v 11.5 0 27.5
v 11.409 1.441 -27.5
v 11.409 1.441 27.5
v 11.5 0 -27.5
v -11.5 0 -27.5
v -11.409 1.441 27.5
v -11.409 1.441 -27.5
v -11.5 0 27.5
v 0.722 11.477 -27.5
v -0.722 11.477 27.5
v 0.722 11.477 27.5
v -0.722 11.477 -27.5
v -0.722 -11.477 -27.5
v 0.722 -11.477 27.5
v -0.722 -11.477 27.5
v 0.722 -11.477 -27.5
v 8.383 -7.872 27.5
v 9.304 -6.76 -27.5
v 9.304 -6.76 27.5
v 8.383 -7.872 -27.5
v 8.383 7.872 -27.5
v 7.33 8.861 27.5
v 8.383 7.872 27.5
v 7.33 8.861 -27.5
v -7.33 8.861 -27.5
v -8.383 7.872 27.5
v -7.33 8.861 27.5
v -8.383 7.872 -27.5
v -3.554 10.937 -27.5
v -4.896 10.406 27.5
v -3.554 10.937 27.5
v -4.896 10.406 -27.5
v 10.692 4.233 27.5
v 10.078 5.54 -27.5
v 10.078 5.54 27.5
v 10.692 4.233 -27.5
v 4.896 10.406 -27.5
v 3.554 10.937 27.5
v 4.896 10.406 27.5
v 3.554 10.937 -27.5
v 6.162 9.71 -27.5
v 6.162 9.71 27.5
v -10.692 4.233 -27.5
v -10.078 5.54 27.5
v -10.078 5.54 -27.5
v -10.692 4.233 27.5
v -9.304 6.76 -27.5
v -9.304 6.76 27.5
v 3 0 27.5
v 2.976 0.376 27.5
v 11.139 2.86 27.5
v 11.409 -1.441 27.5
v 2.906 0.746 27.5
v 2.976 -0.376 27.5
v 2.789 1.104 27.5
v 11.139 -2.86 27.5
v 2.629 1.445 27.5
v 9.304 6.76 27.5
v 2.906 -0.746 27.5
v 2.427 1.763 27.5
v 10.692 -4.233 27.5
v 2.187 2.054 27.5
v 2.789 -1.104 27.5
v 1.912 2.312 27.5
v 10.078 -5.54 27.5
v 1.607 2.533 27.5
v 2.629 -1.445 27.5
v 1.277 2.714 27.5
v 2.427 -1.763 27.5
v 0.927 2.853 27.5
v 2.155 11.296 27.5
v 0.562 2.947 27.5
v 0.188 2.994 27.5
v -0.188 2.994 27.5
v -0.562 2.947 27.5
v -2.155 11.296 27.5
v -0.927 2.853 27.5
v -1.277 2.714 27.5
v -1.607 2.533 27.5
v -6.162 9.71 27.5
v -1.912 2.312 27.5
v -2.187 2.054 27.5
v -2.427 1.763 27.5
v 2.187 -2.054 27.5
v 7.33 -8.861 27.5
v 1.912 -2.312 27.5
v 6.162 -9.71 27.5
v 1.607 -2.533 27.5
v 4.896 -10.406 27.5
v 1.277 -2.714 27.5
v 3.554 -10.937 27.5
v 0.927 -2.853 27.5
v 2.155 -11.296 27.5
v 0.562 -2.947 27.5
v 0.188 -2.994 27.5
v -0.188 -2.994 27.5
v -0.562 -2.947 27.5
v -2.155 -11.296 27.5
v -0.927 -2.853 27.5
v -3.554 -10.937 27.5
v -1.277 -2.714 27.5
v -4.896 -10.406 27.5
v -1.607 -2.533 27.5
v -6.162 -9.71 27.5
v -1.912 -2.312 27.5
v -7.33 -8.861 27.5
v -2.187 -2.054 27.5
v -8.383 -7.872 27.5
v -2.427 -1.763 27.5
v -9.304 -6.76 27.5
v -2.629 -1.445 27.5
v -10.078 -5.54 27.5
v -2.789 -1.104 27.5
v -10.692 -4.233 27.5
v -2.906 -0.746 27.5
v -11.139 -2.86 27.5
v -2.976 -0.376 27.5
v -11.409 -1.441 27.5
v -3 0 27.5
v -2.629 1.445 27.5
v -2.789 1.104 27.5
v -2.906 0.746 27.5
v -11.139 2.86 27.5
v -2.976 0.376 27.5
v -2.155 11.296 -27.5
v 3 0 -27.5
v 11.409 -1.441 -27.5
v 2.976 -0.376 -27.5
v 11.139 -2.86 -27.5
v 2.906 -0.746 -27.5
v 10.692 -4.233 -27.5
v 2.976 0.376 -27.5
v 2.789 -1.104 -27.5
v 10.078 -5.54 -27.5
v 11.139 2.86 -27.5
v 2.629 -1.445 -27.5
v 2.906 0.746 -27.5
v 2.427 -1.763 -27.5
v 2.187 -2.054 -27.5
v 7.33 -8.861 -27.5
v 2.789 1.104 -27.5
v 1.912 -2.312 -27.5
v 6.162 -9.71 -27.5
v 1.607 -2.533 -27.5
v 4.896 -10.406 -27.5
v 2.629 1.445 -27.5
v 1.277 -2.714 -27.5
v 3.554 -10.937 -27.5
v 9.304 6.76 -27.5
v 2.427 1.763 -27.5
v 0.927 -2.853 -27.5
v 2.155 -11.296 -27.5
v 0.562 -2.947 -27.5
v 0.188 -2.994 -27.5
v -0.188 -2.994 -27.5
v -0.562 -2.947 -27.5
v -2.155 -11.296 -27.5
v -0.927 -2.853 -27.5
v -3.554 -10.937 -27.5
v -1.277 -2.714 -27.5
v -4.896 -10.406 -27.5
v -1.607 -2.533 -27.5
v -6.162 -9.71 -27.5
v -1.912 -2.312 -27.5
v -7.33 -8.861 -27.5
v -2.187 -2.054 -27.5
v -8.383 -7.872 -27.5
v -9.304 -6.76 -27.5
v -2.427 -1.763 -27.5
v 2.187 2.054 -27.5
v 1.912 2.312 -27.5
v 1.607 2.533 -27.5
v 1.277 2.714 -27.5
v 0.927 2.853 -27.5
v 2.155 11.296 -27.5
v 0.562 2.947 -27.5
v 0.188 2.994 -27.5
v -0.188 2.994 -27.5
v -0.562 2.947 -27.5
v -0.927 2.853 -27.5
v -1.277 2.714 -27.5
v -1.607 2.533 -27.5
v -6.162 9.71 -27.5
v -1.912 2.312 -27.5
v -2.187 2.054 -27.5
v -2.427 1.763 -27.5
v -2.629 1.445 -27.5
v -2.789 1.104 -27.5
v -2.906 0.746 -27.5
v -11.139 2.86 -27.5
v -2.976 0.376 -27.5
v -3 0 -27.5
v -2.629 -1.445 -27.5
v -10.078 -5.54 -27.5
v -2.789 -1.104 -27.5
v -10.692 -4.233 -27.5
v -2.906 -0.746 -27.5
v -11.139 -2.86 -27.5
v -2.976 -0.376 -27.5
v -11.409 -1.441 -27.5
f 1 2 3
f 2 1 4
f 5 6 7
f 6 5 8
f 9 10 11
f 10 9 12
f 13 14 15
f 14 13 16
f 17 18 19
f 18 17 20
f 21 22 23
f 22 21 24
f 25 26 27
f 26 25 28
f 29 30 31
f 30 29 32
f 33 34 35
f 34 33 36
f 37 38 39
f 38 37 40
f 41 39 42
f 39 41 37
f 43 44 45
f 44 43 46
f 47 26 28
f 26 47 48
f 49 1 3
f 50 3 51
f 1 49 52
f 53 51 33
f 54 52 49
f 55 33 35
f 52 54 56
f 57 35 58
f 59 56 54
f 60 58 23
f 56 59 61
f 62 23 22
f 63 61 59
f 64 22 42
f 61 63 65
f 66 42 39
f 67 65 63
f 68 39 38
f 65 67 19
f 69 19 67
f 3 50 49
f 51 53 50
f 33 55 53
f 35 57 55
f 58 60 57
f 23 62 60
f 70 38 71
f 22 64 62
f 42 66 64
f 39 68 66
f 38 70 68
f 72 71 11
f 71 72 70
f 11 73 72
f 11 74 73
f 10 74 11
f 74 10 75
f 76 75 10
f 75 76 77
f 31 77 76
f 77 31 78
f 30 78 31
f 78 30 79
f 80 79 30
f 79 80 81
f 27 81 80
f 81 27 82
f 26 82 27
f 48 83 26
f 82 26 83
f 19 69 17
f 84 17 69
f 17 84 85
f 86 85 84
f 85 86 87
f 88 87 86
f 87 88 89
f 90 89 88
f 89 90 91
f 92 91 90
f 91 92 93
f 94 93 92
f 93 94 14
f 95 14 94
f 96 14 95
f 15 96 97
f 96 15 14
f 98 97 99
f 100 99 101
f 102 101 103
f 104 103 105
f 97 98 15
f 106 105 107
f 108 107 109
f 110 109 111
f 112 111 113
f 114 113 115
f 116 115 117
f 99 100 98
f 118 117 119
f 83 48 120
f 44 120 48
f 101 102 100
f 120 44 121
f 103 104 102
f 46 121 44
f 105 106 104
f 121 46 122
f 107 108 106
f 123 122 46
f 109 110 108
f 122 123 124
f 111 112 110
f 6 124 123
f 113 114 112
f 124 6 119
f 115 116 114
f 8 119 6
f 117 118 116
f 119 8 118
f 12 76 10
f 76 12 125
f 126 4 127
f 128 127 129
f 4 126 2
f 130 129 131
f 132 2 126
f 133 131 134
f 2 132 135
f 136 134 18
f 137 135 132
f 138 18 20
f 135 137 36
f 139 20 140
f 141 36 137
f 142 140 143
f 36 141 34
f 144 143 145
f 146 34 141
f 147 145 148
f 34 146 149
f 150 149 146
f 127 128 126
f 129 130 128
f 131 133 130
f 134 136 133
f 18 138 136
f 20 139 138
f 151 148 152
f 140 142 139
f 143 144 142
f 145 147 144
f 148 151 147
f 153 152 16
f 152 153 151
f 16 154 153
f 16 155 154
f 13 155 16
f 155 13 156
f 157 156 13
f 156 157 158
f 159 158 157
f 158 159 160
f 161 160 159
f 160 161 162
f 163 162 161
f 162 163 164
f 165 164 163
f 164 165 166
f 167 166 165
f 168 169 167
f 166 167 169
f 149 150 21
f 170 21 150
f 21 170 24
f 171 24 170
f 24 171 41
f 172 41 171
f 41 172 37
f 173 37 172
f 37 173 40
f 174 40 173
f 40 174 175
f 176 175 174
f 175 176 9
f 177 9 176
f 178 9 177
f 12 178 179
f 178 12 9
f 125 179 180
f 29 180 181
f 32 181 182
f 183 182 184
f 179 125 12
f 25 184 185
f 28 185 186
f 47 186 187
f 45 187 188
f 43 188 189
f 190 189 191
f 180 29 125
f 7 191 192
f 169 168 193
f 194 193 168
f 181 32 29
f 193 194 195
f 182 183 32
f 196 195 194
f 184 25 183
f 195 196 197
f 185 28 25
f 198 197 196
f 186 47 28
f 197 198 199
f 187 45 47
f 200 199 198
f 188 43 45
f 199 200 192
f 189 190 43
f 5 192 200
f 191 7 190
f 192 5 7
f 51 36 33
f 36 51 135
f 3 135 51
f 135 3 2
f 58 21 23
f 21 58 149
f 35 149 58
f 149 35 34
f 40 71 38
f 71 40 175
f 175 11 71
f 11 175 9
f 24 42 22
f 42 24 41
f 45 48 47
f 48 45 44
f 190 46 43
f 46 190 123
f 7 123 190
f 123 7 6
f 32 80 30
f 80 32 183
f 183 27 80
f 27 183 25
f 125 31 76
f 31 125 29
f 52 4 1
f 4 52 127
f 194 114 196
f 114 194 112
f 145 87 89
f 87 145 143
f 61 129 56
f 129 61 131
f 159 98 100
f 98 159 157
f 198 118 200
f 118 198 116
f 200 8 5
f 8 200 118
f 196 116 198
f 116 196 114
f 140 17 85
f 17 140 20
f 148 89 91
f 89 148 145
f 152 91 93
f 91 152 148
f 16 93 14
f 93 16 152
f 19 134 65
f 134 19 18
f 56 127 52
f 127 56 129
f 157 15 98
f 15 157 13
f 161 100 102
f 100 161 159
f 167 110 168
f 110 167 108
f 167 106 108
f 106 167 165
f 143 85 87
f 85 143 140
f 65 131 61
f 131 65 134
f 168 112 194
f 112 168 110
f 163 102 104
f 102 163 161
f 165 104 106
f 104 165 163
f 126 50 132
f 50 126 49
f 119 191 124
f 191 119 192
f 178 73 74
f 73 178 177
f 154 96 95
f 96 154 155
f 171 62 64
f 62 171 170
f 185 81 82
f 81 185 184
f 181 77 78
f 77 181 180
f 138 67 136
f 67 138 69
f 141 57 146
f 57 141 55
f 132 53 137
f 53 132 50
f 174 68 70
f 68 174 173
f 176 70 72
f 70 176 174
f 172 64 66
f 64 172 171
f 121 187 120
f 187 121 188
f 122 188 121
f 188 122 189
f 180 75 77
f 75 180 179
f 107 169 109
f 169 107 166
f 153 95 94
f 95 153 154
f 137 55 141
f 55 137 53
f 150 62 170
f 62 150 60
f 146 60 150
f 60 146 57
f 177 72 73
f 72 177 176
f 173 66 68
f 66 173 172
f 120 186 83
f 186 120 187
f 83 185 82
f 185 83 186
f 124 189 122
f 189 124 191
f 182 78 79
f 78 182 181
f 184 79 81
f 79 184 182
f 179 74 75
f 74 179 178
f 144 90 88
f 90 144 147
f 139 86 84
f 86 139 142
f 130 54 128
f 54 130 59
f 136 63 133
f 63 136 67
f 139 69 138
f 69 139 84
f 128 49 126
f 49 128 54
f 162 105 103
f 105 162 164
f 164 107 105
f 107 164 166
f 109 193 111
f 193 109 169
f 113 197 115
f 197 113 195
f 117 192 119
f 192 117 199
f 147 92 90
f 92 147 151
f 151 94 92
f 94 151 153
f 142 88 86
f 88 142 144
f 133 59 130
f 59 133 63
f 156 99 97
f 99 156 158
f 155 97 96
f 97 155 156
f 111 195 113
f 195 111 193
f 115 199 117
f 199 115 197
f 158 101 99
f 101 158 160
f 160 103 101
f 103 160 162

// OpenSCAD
$fn = 50;


difference() {
	union() {
		translate(v = [0, 0, -27.5000000000]) {
			cylinder(h = 55, r = 11.5000000000);
		}
	}
	union() {
		translate(v = [0, 0, -100.0000000000]) {
			cylinder(h = 200, r = 3);
		}
	}
}
